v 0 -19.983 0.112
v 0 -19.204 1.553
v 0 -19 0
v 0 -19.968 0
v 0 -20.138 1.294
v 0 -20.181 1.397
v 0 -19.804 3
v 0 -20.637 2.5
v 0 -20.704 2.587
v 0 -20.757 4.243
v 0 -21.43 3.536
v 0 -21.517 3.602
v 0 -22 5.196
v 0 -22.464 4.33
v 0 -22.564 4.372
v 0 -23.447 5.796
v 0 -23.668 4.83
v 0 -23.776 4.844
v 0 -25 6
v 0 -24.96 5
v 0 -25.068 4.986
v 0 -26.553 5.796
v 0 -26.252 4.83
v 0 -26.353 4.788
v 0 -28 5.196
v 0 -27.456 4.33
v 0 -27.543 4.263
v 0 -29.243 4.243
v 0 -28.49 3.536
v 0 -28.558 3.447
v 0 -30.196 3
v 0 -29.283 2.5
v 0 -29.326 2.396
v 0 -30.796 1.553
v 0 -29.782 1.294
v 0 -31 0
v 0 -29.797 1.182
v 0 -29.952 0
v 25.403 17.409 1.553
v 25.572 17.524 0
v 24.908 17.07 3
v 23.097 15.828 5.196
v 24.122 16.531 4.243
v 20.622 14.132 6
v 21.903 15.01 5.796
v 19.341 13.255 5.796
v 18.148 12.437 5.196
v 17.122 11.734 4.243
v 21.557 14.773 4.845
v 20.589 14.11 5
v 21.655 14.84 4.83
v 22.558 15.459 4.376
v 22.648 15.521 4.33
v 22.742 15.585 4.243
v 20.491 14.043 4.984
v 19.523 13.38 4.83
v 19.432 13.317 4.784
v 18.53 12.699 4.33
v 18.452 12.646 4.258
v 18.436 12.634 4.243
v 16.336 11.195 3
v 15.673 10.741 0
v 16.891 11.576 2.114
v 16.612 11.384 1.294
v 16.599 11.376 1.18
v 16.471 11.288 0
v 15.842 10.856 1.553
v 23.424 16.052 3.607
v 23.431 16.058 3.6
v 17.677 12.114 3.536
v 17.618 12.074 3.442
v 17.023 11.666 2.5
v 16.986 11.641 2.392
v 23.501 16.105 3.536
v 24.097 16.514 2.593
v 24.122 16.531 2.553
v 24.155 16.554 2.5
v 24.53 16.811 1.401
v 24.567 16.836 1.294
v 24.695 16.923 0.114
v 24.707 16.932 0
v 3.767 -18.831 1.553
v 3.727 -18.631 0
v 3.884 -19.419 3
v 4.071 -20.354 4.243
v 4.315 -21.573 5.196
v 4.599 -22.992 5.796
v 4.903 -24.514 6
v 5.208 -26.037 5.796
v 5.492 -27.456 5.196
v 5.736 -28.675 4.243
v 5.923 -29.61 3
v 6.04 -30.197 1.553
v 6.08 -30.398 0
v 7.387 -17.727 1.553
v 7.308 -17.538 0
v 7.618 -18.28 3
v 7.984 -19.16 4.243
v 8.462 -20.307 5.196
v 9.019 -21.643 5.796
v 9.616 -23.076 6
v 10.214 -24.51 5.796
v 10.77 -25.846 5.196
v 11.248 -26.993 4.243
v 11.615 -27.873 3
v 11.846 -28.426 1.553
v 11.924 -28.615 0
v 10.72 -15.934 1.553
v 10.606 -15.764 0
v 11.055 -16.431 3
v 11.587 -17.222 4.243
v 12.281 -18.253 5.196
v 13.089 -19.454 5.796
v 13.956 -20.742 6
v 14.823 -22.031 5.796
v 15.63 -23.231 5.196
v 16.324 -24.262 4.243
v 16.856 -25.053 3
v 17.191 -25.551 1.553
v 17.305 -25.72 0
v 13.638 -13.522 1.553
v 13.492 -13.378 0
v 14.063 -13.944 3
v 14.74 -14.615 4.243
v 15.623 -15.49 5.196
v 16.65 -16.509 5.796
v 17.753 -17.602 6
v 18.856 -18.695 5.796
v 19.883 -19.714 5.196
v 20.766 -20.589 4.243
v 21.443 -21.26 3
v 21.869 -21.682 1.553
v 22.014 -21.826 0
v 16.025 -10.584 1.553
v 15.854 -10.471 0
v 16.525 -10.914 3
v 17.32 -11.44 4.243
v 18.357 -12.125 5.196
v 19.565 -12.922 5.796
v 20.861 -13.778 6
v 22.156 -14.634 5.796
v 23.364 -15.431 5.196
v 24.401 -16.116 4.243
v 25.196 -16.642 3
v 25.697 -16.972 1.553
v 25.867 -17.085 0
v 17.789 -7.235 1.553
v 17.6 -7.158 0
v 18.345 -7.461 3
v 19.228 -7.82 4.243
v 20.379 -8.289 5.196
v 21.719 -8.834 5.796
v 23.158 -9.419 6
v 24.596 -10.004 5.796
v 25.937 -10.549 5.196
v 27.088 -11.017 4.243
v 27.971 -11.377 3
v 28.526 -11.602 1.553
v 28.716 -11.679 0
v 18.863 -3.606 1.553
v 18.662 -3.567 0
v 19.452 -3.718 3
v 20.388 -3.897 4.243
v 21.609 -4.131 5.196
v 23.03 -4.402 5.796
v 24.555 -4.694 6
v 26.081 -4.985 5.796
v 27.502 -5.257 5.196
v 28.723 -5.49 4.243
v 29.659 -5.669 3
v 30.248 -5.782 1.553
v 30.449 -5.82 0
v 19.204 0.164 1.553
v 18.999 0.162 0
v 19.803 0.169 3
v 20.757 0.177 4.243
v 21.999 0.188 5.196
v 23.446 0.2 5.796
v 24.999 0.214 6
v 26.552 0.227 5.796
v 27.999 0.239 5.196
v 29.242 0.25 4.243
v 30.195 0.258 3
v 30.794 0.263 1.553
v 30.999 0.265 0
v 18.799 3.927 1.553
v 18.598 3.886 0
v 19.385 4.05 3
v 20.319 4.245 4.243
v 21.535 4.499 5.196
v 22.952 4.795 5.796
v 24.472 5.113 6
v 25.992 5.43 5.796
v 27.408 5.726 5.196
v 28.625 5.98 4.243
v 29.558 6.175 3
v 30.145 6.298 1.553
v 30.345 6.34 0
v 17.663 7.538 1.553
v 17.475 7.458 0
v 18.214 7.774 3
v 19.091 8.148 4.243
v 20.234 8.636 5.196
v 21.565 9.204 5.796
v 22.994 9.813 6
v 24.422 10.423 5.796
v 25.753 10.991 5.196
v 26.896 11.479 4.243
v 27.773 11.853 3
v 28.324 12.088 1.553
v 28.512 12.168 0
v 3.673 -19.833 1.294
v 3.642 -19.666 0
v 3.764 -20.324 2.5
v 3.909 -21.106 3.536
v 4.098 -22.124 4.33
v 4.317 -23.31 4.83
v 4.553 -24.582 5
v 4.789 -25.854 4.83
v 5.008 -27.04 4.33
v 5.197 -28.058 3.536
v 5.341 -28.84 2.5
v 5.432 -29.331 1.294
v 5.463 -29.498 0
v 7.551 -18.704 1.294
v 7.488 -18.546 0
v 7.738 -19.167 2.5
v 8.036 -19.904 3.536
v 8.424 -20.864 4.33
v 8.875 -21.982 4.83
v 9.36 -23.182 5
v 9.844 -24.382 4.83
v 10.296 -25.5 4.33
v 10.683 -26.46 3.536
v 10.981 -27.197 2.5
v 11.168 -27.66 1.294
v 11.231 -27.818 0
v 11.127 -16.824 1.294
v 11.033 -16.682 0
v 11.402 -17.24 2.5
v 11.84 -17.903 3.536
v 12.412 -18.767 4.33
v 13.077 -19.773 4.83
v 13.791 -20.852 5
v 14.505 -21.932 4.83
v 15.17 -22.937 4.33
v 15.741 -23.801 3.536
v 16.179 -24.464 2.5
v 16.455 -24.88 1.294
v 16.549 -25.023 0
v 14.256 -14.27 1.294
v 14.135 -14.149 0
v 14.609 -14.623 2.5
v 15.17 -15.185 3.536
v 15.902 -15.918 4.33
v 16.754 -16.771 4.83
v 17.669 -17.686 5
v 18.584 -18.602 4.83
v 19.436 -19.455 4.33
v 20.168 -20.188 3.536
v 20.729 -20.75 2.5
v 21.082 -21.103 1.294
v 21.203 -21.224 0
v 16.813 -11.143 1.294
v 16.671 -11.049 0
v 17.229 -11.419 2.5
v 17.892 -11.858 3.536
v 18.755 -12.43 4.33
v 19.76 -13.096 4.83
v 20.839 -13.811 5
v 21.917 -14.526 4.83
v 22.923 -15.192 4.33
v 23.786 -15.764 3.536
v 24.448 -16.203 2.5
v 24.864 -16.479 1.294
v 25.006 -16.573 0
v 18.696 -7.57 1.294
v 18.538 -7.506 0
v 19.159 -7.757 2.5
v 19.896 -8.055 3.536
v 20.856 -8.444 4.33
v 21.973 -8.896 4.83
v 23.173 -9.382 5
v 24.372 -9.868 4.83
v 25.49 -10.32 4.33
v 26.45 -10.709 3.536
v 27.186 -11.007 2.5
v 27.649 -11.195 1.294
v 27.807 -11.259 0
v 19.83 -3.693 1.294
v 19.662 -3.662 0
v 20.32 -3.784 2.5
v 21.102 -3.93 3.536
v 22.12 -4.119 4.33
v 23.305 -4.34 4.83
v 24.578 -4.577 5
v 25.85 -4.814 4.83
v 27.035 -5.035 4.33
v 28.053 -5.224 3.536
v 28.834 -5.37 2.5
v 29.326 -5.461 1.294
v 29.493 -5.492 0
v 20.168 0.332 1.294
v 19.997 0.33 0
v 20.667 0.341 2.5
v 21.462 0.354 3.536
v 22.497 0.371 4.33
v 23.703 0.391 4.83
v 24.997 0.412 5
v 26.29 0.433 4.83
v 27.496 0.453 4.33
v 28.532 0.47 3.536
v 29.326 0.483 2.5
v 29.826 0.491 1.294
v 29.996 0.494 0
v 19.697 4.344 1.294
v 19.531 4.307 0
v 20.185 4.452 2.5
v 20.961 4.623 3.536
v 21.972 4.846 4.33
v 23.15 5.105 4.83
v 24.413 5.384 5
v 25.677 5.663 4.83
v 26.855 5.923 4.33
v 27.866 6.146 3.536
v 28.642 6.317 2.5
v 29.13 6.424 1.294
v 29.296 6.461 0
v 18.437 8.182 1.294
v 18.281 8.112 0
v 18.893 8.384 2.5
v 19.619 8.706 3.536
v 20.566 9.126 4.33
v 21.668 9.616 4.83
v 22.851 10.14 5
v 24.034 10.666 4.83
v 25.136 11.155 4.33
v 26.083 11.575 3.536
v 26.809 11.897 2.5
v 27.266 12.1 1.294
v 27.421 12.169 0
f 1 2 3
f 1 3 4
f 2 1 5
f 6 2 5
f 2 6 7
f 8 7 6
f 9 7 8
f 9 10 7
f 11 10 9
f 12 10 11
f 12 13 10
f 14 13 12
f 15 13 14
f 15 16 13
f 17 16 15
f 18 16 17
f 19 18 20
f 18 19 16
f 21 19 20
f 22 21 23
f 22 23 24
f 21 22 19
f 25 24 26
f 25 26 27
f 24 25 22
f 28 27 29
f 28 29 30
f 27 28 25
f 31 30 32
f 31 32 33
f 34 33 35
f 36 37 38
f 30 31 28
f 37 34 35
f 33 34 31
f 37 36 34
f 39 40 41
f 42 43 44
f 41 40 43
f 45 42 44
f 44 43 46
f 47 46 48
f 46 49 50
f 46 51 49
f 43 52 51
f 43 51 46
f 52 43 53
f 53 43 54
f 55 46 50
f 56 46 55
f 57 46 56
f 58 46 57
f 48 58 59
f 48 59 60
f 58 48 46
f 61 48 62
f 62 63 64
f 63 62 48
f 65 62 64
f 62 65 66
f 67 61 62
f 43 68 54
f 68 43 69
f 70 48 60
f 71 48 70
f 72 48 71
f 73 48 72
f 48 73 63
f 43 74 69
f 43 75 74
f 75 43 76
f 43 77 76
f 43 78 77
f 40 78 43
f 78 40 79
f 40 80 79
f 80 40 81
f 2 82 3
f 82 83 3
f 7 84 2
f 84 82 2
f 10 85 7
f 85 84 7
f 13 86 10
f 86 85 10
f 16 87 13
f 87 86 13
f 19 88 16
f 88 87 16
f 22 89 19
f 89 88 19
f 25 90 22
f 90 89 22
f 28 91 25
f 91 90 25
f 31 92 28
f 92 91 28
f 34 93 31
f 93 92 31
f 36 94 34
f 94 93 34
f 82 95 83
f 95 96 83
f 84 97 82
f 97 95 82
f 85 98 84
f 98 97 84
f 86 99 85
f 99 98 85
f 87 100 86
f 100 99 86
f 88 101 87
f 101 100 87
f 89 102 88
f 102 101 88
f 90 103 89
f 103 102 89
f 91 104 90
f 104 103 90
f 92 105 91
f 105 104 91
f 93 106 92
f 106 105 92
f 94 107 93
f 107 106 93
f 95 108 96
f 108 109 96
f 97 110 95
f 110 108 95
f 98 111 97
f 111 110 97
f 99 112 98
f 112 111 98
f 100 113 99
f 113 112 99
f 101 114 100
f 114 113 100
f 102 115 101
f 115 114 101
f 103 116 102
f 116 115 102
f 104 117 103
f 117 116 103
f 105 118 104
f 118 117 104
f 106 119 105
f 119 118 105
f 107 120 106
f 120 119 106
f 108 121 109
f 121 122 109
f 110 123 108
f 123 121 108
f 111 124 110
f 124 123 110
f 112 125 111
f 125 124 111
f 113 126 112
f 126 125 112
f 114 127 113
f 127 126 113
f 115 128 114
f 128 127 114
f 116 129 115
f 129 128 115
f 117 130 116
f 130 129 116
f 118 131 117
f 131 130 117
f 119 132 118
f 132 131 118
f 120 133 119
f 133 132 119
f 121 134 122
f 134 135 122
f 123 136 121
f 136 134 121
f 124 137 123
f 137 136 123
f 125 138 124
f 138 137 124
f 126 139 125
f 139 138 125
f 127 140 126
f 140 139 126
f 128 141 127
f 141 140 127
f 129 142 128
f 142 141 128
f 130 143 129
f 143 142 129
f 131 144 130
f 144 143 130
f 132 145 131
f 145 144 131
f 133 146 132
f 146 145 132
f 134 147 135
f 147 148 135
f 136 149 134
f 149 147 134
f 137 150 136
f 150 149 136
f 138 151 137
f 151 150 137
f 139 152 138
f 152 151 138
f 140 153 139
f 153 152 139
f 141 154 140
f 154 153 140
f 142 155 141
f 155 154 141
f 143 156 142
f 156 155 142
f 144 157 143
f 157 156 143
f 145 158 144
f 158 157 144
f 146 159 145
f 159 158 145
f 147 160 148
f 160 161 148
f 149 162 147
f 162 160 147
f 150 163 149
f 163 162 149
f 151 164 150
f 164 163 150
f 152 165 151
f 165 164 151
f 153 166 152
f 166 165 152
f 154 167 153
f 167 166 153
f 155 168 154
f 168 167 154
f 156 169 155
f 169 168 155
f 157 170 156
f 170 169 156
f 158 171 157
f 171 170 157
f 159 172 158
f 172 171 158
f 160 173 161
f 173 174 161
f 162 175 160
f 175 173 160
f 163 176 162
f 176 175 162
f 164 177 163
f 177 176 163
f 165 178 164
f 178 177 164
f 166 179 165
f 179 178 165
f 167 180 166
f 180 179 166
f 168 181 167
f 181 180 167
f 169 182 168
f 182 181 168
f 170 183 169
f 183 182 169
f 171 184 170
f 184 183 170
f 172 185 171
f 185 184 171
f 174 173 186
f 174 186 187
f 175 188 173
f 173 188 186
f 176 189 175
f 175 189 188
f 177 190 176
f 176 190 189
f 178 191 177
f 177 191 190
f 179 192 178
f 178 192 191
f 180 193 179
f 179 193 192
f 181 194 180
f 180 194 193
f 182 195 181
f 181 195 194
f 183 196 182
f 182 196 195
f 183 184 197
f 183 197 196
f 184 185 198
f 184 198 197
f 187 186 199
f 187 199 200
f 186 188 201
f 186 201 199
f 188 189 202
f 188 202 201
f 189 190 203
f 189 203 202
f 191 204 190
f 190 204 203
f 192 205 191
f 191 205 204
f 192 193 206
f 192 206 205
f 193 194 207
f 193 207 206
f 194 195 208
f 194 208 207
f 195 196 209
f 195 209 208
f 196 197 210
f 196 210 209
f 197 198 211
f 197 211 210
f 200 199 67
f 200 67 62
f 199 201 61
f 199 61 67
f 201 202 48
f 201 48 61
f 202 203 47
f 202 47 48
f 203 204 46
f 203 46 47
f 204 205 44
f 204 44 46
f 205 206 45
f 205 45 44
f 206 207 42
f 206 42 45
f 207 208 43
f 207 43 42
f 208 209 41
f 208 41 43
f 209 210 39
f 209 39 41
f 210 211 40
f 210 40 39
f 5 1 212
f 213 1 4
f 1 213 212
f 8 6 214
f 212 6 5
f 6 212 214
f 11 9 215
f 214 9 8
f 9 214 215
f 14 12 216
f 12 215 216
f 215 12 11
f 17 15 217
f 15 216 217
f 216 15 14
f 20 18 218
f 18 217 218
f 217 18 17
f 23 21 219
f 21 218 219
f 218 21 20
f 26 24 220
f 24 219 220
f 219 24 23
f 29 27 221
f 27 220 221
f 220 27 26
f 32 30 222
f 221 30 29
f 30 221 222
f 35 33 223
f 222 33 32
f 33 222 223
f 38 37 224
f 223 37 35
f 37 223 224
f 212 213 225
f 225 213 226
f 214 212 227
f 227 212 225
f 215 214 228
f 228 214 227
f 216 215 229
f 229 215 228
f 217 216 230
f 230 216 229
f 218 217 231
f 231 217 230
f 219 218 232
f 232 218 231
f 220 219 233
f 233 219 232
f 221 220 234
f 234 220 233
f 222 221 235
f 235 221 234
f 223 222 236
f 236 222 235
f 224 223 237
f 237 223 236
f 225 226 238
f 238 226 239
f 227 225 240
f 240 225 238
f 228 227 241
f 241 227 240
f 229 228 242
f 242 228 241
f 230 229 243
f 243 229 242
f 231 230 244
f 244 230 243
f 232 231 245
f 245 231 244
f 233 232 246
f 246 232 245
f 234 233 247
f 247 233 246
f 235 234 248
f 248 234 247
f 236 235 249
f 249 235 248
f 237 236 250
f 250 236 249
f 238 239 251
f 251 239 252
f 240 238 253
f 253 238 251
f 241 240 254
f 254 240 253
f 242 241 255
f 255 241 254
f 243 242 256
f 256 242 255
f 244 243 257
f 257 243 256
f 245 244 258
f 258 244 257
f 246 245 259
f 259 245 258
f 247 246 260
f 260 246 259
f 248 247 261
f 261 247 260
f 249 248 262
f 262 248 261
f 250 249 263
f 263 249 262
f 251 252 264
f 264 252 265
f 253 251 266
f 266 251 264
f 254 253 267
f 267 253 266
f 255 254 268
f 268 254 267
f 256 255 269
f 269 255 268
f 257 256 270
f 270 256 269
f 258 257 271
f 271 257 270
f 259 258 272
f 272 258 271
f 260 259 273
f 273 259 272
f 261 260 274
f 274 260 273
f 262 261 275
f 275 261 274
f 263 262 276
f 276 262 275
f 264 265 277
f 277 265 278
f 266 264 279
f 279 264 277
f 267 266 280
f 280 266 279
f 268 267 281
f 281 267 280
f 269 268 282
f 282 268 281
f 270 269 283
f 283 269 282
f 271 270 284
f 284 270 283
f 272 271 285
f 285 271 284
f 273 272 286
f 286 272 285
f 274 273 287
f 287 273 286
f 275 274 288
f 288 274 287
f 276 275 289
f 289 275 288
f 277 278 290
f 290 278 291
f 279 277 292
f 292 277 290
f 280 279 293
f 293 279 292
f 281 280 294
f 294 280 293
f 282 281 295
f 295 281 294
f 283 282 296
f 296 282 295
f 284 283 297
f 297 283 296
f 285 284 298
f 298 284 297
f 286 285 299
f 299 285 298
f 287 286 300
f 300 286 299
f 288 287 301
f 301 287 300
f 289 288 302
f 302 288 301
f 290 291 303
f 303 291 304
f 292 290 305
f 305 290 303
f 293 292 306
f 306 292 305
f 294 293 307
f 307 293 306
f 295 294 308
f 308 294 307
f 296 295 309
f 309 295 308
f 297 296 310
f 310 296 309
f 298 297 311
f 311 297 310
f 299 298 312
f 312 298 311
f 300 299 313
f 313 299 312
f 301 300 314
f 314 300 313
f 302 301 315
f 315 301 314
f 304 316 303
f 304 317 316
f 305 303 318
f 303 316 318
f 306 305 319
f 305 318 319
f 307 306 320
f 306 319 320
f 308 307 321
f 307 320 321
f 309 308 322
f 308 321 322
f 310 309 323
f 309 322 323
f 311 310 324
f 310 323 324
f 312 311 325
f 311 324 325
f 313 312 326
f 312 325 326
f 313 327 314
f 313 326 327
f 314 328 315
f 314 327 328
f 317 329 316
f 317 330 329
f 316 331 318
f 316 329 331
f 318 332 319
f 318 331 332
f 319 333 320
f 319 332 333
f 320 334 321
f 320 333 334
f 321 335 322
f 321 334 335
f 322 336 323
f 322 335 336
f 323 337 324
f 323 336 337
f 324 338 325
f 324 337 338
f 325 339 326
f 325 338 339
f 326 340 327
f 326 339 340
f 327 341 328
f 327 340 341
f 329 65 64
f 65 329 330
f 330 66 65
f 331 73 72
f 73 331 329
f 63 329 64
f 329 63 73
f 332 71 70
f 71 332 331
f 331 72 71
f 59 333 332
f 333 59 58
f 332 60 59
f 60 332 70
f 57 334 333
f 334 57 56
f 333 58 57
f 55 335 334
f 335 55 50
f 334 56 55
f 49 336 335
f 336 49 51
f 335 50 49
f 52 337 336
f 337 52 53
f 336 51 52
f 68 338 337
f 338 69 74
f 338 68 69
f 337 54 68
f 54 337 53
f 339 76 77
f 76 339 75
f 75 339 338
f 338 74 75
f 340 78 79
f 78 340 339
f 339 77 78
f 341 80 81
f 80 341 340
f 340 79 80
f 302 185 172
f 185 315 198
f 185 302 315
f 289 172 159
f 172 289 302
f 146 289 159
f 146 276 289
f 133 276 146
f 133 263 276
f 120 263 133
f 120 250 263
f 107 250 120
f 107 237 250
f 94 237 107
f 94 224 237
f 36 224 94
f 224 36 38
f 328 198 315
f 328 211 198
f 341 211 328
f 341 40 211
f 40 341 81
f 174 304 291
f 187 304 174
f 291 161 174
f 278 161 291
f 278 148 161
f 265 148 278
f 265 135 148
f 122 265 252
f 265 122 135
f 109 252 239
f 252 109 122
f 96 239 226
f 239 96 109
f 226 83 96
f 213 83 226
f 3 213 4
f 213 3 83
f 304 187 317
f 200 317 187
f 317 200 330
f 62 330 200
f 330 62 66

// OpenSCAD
// file: ../build_environments.scad
// build_environments.scad: modules to build level sections
//

module pool(diameter=10.0, wall_height=2.0, step_width=3.0, connections=[])
{
    difference() {
        union() {
        difference() {
            cylinder(h=0.5,r1=diameter+step_width,r2=diameter+step_width,$fn=48);
            translate([0,0,-0.1])
                cylinder(h=0.7,r1=diameter,r2=diameter,$fn=48);
        }
        difference() {
            cylinder(h=wall_height,r1=diameter+step_width+1.0,r2=diameter+step_width+1.0,$fn=48);
            translate([0,0,-0.1])
                cylinder(h=wall_height+0.2,r1=diameter+step_width,r2=diameter+step_width,$fn=48);
        }
        }
    
        for (c = connections)
        {
            rotate([0,90,0]) {
                angle = atan2(c[1],c[0]);
                rotate([-angle,0,0]) {
                    cylinder(h=diameter+5.0,r1=c[2],r2=c[2],$fn=48);
                }
            }
        }
    }
}

module straight(length=10.0, width=2.0, dy1=0.0, dy2=0.0, dz=0.0)
{
    dims = [0, 0, 0, 0, 0, (dz/length)];
    matrix = [
        [ 1, dims[0], dims[1], 0 ],
        [ dims[2], 1, dims[4], 0 ],
        [ dims[5], dims[3], 1, 0 ],
        [ 0, 0, 0, 1 ]
    ];
    multmatrix(matrix)
    difference() {
        translate([dy1,0,0])
        union() {
            rotate([0,90,0]) {
                difference() {
                    cylinder(h=(length-dy1-dy2),r1=width+1.0,r2=width+1.0,$fn=24);
                    translate([0,0,-0.1])
                        cylinder(h=(length-dy1-dy2+0.2),r1=width,r2=width,$fn=24);
                }
                difference() {
                    cylinder(h=1.0,r1=width+2.0,r2=width+2.0,$fn=24);
                    translate([0,0,-0.1])
                        cylinder(h=1.2,r1=width,r2=width,$fn=24);
                }
                translate([0,0,(length-dy1-dy2)-1.0]) {
                    difference() {
                        cylinder(h=1.0,r1=width+2.0,r2=width+2.0,$fn=24);
                        translate([0,0,-0.1])
                            cylinder(h=1.2,r1=width,r2=width,$fn=24);
                    }
                }
            }
        }
        translate([0,0,-(2*width+4.0)/2])
            cube([3*length,3*length,2*width+4.0],center=true);
    }
}

module curve(p0=[0,0], center=[0,0], dir=1, angle=0.0, width=2.0)
{
    radius = sqrt((p0[0]-center[0])*(p0[0]-center[0]) + (p0[1]-center[1])*(p0[1]-center[1]));
    if (dir == 0) {
        difference() {
            rotate([0,0,-90])
            difference() {
                rotate_extrude(angle = angle, convexity = 10, $fn=32)
                    translate([radius, 0, 0])
                        circle(r = width+1.0,$fn=24);
                rotate([0,0,-1.0])
                    rotate_extrude(angle = angle+2.0, convexity = 10, $fn=32)
                        translate([radius, 0, 0])
                            circle(r = width,$fn=24);
            }
            translate([0,0,-(2*width+4.0)/2])
                cube([5*radius,5*radius,2*width+4.0],center=true);
        }
    }
    else {
        difference() {
            rotate([0,0,90])
            difference() {
                rotate_extrude(angle = -angle, convexity = 10, $fn=32)
                    translate([radius, 0, 0])
                        circle(r = width+1.0,$fn=24);
                rotate([0,0,1.0])
                    rotate_extrude(angle = -angle-2.0, convexity = 10, $fn=32)
                        translate([radius, 0, 0])
                            circle(r = width,$fn=24);
            }
            translate([0,0,-(2*width+4.0)/2])
                cube([5*radius,5*radius,2*width+4.0],center=true);
        }
    }

}

// test pool
//pool(diameter=12.0000, wall_height=3.0000, step_width=3.0000, connections=[[0.0000,-26.0000,2.0000], [23.6074,0.0000,2.0000]]);

// test straight, slope
//straight(length=26.0000, width=2.0000, dy1=11.8322, dy2=6.7082, dz=0.0000);
//straight(length=29.1549, width=12.0000, dy1=0.0000, dy2=0.0000, dz=-15.0000);

// test curve
//curve(p0=[23.6074, 0.0000], center=[23.6074, 5.0000], dir=0, angle=60.1011, width=2.0000);
//curve(p0=[33.6426, 12.4219], center=[37.9771, 9.9295], dir=1, angle=120.4627, width=2.0000);
// main file
use <../build_environments.scad>;
curve(p0=[191.5346, -217.0748], center=[166.8860, -221.2518], dir=0, angle=124.4231, width=5.0000);
